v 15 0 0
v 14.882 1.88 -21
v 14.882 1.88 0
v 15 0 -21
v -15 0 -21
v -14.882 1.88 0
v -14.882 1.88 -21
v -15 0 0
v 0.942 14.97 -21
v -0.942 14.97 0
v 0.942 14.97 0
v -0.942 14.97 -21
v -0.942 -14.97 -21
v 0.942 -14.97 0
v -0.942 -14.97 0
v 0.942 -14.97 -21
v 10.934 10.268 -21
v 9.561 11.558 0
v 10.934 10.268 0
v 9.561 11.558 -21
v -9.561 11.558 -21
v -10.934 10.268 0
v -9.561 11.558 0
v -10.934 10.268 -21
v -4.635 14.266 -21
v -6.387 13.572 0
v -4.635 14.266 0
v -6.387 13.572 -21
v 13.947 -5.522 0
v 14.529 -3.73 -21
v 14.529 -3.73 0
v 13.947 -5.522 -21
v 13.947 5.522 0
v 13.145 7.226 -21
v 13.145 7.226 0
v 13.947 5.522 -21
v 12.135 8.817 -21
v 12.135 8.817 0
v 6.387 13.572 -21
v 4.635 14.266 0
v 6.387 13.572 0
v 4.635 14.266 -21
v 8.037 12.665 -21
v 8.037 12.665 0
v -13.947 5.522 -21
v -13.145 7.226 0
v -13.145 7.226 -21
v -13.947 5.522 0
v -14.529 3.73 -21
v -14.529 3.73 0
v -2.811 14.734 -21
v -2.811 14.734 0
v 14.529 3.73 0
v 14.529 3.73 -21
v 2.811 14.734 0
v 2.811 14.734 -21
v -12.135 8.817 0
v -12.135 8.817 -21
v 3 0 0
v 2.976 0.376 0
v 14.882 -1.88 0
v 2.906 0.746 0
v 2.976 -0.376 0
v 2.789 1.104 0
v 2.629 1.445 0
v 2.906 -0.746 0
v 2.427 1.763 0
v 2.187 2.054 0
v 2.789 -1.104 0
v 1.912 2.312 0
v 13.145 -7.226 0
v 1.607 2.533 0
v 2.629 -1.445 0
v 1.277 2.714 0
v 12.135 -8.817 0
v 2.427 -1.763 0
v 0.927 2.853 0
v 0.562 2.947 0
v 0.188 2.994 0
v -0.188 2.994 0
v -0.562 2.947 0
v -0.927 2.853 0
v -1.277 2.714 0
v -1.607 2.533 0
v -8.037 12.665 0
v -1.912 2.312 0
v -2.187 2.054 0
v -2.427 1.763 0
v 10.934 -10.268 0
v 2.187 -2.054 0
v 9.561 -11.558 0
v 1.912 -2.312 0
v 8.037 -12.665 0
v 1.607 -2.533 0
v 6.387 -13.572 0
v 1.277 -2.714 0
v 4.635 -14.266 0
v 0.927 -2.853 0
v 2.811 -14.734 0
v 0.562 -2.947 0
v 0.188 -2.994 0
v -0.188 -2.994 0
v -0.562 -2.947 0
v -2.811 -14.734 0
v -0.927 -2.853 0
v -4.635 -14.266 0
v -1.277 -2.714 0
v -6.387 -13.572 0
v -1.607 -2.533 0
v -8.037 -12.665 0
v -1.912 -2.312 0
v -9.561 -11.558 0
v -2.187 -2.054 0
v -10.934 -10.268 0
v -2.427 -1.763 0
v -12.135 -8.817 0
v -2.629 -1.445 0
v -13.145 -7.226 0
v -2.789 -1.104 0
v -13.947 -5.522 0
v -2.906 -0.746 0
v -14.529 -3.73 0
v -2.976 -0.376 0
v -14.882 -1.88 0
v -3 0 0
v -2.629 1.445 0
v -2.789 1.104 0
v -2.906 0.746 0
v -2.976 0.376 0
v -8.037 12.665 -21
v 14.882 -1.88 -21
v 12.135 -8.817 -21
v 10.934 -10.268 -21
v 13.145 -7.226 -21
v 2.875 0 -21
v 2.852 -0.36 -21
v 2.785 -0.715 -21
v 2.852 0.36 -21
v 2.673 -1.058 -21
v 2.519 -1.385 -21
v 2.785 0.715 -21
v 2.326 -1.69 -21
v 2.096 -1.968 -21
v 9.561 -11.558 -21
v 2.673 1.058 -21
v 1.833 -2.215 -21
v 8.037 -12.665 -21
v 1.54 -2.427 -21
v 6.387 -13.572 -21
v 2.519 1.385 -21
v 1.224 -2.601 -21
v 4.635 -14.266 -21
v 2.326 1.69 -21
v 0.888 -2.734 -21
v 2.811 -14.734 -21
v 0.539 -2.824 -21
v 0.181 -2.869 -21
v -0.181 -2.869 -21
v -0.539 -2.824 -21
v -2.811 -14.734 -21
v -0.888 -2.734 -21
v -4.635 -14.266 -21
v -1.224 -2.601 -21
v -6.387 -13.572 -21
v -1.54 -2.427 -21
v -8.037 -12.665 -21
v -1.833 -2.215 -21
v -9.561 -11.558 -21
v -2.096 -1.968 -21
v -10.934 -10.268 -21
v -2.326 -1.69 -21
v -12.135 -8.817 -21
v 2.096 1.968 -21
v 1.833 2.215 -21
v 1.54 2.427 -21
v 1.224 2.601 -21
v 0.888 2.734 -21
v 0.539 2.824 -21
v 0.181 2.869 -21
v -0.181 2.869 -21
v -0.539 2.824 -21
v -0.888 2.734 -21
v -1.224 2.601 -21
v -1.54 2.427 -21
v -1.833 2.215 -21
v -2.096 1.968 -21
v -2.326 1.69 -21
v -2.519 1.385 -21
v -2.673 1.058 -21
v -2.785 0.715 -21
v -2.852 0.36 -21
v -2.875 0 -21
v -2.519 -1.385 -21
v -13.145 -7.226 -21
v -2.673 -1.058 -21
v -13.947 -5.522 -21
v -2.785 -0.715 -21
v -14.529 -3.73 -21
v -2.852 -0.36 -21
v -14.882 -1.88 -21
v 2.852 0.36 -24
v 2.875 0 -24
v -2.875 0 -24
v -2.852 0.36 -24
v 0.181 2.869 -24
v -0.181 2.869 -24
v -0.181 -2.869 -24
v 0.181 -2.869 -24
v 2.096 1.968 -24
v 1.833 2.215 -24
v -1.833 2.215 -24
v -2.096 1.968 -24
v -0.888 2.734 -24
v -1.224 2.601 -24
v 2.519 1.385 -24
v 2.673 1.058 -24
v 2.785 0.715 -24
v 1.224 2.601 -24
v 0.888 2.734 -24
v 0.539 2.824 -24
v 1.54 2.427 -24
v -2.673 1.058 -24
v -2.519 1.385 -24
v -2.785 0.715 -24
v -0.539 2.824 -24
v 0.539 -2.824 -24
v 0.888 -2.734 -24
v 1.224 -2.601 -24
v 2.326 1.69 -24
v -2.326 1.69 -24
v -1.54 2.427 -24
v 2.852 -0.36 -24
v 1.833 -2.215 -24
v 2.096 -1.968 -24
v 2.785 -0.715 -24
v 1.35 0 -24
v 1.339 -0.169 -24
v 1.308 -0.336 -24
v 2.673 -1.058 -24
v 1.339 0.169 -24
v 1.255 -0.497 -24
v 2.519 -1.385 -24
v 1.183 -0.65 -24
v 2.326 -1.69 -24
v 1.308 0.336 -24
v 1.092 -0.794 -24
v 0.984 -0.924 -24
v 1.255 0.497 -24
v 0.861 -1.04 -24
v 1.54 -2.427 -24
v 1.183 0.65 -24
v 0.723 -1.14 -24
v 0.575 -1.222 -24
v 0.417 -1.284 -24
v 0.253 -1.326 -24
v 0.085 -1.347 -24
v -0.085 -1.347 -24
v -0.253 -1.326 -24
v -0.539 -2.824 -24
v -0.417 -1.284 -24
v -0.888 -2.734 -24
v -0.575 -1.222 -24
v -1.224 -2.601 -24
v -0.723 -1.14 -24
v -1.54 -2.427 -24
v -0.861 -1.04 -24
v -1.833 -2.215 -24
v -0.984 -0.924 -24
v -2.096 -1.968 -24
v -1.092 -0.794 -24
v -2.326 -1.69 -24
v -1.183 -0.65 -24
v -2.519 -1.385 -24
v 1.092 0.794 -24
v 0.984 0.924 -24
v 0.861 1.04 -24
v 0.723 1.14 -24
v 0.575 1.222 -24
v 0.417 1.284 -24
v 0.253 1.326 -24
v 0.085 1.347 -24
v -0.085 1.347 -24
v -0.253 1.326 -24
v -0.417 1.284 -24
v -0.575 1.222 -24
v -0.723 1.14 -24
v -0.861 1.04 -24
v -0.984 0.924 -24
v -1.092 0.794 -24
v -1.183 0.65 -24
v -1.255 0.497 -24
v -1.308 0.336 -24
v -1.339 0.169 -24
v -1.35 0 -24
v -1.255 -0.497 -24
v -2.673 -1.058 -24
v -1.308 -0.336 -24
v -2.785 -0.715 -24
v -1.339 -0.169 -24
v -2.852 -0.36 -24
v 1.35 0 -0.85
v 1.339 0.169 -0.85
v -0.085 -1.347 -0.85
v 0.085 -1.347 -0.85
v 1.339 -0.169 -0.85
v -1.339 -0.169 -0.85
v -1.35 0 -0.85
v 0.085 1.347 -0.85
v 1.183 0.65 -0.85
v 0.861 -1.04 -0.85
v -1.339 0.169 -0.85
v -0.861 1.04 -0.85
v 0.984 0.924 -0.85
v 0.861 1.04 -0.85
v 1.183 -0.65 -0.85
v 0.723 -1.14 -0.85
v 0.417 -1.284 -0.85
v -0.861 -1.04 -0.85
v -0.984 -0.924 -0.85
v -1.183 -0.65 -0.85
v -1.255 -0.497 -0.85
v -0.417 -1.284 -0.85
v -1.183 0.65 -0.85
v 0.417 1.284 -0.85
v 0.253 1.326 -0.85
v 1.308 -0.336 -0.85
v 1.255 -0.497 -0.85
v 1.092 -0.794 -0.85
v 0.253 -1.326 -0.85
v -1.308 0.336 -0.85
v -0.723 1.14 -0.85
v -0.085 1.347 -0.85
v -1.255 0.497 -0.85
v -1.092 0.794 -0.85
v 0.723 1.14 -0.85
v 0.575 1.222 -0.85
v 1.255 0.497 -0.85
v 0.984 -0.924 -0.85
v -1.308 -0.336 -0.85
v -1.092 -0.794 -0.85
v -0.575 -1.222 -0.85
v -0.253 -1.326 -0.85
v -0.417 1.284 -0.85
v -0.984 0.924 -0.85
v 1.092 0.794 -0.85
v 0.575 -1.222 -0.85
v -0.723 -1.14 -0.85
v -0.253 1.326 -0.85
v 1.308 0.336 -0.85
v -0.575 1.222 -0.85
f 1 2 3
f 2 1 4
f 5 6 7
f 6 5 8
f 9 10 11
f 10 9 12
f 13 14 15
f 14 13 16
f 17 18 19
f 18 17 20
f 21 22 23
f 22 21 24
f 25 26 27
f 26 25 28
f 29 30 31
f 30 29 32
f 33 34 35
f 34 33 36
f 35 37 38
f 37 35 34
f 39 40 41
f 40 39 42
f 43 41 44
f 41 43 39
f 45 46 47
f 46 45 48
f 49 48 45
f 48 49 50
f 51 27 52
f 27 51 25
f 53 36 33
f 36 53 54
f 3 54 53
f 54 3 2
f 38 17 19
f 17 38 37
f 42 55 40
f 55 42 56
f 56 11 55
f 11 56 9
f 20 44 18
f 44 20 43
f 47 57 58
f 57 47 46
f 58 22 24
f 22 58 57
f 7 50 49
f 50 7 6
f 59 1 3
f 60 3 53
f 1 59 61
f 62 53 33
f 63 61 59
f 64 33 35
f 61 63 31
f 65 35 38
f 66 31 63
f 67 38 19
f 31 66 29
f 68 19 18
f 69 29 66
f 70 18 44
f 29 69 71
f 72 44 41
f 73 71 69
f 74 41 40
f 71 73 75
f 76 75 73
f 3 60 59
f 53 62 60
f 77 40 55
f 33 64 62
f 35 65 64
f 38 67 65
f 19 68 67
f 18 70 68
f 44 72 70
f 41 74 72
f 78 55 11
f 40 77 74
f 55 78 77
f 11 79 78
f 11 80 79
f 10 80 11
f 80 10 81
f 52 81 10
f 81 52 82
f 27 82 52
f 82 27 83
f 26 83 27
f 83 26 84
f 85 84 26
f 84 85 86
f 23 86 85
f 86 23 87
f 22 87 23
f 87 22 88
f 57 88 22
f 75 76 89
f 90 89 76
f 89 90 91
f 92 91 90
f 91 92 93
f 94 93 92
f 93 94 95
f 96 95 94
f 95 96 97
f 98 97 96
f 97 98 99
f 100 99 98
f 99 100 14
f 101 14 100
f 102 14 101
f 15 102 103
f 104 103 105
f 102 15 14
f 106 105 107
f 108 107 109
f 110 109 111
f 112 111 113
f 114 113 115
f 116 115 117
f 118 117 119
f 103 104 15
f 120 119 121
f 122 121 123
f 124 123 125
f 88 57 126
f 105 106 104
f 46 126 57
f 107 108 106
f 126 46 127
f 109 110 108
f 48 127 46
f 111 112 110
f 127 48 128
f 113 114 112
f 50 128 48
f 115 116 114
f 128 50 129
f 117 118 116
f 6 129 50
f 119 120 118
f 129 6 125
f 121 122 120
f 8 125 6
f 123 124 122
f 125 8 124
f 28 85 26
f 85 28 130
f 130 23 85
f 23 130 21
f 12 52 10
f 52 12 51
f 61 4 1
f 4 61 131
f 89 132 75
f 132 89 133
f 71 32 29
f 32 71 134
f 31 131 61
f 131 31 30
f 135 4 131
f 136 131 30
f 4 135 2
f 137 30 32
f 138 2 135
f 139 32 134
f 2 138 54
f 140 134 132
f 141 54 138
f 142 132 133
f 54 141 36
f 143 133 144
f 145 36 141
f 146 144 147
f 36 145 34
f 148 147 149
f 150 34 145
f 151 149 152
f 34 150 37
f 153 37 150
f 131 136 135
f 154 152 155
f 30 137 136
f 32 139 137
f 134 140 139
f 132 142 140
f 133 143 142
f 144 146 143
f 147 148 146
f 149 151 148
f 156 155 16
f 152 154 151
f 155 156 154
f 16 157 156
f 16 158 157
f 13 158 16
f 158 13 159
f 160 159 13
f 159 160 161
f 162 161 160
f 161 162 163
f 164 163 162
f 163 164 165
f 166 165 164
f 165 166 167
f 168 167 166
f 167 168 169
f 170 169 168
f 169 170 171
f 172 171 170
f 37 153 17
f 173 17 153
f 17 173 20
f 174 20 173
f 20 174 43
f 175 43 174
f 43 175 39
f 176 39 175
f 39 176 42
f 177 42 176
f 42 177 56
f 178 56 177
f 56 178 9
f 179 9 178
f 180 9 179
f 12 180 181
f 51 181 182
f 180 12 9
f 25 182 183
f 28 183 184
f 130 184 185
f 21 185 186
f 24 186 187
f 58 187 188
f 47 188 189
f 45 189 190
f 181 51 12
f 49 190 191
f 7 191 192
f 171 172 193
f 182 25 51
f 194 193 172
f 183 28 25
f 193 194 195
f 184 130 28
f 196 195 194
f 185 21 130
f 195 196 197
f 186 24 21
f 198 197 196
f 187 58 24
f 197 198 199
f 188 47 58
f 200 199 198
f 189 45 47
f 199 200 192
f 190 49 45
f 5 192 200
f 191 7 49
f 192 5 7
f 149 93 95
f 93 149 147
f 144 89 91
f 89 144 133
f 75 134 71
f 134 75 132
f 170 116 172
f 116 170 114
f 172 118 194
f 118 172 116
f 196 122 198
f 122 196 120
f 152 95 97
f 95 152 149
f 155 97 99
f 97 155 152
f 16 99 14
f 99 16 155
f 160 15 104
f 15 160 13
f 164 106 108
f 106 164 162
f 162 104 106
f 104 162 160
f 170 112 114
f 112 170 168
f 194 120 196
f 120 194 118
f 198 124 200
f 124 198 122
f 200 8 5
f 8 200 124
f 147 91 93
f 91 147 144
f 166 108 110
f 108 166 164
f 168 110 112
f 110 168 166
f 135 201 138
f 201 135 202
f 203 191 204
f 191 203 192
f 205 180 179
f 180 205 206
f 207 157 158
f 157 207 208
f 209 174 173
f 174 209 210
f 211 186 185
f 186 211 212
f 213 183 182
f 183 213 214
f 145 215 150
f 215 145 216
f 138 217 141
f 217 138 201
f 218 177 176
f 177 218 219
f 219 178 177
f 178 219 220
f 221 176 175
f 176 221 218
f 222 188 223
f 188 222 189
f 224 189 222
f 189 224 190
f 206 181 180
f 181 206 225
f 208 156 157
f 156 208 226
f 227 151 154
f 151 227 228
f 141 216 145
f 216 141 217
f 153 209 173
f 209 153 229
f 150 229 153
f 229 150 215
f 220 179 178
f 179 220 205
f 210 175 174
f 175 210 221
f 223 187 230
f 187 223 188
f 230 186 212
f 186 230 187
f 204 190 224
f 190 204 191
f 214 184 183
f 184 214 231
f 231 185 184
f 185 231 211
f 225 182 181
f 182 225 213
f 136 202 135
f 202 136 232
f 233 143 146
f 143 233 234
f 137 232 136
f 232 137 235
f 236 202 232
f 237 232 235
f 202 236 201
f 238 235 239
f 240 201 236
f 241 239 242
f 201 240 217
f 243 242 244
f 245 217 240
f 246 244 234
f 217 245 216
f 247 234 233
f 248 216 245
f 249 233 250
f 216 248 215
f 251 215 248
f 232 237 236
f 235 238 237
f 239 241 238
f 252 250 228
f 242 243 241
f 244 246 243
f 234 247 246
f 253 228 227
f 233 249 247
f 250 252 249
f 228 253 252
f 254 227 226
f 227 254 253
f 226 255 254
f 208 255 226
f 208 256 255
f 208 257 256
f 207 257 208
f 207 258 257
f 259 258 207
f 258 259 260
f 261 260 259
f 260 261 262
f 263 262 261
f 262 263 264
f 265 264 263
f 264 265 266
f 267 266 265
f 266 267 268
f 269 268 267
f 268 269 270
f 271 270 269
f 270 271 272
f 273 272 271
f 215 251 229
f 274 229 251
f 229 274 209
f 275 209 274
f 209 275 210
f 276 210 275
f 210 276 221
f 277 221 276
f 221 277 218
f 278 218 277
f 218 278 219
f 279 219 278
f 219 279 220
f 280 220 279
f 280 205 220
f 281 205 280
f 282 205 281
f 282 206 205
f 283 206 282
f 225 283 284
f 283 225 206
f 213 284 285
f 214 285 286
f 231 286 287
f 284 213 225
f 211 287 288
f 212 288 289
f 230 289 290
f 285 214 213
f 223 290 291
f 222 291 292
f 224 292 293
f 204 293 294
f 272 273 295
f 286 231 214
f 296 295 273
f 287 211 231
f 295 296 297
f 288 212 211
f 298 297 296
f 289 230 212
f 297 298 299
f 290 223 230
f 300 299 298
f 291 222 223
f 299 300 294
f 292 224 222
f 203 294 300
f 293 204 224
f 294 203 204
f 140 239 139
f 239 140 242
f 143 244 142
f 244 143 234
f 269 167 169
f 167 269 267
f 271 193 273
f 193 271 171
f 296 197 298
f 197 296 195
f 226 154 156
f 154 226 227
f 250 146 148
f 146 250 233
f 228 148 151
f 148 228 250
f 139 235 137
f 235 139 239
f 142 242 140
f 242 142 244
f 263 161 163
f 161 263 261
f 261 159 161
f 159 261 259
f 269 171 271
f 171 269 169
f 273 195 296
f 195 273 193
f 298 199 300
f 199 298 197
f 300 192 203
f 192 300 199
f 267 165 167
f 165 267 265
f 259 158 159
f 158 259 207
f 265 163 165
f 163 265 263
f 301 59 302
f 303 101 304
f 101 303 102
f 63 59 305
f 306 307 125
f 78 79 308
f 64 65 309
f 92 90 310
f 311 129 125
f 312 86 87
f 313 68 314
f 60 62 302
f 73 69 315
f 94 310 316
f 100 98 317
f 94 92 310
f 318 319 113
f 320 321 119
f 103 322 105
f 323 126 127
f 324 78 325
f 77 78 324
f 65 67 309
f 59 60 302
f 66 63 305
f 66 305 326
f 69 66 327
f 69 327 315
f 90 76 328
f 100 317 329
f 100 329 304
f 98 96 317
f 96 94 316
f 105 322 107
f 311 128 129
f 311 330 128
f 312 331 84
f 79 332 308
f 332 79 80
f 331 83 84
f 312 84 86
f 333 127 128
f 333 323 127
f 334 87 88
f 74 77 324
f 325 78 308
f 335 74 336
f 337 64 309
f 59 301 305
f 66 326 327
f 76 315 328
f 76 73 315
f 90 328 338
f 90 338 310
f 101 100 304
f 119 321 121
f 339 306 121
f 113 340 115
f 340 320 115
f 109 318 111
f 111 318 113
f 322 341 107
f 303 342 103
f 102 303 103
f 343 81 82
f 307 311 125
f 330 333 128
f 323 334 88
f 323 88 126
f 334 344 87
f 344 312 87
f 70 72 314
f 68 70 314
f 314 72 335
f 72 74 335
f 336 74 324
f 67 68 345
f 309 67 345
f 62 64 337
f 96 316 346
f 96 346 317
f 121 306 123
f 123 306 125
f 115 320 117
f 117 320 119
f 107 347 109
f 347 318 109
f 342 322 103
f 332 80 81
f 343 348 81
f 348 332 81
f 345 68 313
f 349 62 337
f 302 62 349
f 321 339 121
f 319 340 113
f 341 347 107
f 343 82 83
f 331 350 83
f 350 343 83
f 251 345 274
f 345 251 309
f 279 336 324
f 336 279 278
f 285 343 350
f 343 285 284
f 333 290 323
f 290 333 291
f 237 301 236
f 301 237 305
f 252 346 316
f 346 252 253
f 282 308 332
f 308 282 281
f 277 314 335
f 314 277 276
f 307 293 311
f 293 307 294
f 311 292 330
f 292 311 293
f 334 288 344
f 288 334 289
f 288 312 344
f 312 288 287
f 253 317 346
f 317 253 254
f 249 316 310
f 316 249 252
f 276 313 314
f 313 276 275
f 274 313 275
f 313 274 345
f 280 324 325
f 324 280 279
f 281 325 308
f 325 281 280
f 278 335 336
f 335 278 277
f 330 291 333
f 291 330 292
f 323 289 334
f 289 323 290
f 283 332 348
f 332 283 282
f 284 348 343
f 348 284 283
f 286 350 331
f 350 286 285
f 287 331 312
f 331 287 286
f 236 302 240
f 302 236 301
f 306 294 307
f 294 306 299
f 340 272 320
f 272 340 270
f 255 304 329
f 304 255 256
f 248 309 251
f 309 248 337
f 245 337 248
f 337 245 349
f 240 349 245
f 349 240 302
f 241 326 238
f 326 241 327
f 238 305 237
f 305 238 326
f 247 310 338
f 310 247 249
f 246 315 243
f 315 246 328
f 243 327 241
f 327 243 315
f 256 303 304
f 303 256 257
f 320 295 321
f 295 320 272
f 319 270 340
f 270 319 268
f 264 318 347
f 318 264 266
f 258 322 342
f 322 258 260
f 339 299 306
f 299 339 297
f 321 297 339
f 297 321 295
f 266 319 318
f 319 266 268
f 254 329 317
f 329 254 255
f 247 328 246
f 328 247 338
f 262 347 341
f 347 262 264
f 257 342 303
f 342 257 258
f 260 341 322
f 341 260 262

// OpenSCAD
$fn = 50;

difference() {
	union() {
		translate(v = [0, 0, -21.0]) {
			cylinder(h = 21, r = 15.0);
		}
		#translate(v = [0, 0, -24.0]) {
			cylinder(h = 24, r = 2.875);
		}
	}
	union() {
		translate(v = [0, 0, 0]) {
			rotate(a = [0, 0, 0]) {
				difference() {
					union() {
						translate(v = [0, 0, -24.0]) {
							cylinder(h = 24, r = 1.0);
						}
						translate(v = [0, 0, -0.85]) {
							cylinder(h = 0.85, r1 = 1.35, r2 = 3.0);
						}
						translate(v = [0, 0, -24.0]) {
							cylinder(h = 24, r = 1.35);
						}
						translate(v = [0, 0, -24.0]) {
							cylinder(h = 24, r = 1.0);
						}
					}
					union();
				}
			}
		}
	}
}
